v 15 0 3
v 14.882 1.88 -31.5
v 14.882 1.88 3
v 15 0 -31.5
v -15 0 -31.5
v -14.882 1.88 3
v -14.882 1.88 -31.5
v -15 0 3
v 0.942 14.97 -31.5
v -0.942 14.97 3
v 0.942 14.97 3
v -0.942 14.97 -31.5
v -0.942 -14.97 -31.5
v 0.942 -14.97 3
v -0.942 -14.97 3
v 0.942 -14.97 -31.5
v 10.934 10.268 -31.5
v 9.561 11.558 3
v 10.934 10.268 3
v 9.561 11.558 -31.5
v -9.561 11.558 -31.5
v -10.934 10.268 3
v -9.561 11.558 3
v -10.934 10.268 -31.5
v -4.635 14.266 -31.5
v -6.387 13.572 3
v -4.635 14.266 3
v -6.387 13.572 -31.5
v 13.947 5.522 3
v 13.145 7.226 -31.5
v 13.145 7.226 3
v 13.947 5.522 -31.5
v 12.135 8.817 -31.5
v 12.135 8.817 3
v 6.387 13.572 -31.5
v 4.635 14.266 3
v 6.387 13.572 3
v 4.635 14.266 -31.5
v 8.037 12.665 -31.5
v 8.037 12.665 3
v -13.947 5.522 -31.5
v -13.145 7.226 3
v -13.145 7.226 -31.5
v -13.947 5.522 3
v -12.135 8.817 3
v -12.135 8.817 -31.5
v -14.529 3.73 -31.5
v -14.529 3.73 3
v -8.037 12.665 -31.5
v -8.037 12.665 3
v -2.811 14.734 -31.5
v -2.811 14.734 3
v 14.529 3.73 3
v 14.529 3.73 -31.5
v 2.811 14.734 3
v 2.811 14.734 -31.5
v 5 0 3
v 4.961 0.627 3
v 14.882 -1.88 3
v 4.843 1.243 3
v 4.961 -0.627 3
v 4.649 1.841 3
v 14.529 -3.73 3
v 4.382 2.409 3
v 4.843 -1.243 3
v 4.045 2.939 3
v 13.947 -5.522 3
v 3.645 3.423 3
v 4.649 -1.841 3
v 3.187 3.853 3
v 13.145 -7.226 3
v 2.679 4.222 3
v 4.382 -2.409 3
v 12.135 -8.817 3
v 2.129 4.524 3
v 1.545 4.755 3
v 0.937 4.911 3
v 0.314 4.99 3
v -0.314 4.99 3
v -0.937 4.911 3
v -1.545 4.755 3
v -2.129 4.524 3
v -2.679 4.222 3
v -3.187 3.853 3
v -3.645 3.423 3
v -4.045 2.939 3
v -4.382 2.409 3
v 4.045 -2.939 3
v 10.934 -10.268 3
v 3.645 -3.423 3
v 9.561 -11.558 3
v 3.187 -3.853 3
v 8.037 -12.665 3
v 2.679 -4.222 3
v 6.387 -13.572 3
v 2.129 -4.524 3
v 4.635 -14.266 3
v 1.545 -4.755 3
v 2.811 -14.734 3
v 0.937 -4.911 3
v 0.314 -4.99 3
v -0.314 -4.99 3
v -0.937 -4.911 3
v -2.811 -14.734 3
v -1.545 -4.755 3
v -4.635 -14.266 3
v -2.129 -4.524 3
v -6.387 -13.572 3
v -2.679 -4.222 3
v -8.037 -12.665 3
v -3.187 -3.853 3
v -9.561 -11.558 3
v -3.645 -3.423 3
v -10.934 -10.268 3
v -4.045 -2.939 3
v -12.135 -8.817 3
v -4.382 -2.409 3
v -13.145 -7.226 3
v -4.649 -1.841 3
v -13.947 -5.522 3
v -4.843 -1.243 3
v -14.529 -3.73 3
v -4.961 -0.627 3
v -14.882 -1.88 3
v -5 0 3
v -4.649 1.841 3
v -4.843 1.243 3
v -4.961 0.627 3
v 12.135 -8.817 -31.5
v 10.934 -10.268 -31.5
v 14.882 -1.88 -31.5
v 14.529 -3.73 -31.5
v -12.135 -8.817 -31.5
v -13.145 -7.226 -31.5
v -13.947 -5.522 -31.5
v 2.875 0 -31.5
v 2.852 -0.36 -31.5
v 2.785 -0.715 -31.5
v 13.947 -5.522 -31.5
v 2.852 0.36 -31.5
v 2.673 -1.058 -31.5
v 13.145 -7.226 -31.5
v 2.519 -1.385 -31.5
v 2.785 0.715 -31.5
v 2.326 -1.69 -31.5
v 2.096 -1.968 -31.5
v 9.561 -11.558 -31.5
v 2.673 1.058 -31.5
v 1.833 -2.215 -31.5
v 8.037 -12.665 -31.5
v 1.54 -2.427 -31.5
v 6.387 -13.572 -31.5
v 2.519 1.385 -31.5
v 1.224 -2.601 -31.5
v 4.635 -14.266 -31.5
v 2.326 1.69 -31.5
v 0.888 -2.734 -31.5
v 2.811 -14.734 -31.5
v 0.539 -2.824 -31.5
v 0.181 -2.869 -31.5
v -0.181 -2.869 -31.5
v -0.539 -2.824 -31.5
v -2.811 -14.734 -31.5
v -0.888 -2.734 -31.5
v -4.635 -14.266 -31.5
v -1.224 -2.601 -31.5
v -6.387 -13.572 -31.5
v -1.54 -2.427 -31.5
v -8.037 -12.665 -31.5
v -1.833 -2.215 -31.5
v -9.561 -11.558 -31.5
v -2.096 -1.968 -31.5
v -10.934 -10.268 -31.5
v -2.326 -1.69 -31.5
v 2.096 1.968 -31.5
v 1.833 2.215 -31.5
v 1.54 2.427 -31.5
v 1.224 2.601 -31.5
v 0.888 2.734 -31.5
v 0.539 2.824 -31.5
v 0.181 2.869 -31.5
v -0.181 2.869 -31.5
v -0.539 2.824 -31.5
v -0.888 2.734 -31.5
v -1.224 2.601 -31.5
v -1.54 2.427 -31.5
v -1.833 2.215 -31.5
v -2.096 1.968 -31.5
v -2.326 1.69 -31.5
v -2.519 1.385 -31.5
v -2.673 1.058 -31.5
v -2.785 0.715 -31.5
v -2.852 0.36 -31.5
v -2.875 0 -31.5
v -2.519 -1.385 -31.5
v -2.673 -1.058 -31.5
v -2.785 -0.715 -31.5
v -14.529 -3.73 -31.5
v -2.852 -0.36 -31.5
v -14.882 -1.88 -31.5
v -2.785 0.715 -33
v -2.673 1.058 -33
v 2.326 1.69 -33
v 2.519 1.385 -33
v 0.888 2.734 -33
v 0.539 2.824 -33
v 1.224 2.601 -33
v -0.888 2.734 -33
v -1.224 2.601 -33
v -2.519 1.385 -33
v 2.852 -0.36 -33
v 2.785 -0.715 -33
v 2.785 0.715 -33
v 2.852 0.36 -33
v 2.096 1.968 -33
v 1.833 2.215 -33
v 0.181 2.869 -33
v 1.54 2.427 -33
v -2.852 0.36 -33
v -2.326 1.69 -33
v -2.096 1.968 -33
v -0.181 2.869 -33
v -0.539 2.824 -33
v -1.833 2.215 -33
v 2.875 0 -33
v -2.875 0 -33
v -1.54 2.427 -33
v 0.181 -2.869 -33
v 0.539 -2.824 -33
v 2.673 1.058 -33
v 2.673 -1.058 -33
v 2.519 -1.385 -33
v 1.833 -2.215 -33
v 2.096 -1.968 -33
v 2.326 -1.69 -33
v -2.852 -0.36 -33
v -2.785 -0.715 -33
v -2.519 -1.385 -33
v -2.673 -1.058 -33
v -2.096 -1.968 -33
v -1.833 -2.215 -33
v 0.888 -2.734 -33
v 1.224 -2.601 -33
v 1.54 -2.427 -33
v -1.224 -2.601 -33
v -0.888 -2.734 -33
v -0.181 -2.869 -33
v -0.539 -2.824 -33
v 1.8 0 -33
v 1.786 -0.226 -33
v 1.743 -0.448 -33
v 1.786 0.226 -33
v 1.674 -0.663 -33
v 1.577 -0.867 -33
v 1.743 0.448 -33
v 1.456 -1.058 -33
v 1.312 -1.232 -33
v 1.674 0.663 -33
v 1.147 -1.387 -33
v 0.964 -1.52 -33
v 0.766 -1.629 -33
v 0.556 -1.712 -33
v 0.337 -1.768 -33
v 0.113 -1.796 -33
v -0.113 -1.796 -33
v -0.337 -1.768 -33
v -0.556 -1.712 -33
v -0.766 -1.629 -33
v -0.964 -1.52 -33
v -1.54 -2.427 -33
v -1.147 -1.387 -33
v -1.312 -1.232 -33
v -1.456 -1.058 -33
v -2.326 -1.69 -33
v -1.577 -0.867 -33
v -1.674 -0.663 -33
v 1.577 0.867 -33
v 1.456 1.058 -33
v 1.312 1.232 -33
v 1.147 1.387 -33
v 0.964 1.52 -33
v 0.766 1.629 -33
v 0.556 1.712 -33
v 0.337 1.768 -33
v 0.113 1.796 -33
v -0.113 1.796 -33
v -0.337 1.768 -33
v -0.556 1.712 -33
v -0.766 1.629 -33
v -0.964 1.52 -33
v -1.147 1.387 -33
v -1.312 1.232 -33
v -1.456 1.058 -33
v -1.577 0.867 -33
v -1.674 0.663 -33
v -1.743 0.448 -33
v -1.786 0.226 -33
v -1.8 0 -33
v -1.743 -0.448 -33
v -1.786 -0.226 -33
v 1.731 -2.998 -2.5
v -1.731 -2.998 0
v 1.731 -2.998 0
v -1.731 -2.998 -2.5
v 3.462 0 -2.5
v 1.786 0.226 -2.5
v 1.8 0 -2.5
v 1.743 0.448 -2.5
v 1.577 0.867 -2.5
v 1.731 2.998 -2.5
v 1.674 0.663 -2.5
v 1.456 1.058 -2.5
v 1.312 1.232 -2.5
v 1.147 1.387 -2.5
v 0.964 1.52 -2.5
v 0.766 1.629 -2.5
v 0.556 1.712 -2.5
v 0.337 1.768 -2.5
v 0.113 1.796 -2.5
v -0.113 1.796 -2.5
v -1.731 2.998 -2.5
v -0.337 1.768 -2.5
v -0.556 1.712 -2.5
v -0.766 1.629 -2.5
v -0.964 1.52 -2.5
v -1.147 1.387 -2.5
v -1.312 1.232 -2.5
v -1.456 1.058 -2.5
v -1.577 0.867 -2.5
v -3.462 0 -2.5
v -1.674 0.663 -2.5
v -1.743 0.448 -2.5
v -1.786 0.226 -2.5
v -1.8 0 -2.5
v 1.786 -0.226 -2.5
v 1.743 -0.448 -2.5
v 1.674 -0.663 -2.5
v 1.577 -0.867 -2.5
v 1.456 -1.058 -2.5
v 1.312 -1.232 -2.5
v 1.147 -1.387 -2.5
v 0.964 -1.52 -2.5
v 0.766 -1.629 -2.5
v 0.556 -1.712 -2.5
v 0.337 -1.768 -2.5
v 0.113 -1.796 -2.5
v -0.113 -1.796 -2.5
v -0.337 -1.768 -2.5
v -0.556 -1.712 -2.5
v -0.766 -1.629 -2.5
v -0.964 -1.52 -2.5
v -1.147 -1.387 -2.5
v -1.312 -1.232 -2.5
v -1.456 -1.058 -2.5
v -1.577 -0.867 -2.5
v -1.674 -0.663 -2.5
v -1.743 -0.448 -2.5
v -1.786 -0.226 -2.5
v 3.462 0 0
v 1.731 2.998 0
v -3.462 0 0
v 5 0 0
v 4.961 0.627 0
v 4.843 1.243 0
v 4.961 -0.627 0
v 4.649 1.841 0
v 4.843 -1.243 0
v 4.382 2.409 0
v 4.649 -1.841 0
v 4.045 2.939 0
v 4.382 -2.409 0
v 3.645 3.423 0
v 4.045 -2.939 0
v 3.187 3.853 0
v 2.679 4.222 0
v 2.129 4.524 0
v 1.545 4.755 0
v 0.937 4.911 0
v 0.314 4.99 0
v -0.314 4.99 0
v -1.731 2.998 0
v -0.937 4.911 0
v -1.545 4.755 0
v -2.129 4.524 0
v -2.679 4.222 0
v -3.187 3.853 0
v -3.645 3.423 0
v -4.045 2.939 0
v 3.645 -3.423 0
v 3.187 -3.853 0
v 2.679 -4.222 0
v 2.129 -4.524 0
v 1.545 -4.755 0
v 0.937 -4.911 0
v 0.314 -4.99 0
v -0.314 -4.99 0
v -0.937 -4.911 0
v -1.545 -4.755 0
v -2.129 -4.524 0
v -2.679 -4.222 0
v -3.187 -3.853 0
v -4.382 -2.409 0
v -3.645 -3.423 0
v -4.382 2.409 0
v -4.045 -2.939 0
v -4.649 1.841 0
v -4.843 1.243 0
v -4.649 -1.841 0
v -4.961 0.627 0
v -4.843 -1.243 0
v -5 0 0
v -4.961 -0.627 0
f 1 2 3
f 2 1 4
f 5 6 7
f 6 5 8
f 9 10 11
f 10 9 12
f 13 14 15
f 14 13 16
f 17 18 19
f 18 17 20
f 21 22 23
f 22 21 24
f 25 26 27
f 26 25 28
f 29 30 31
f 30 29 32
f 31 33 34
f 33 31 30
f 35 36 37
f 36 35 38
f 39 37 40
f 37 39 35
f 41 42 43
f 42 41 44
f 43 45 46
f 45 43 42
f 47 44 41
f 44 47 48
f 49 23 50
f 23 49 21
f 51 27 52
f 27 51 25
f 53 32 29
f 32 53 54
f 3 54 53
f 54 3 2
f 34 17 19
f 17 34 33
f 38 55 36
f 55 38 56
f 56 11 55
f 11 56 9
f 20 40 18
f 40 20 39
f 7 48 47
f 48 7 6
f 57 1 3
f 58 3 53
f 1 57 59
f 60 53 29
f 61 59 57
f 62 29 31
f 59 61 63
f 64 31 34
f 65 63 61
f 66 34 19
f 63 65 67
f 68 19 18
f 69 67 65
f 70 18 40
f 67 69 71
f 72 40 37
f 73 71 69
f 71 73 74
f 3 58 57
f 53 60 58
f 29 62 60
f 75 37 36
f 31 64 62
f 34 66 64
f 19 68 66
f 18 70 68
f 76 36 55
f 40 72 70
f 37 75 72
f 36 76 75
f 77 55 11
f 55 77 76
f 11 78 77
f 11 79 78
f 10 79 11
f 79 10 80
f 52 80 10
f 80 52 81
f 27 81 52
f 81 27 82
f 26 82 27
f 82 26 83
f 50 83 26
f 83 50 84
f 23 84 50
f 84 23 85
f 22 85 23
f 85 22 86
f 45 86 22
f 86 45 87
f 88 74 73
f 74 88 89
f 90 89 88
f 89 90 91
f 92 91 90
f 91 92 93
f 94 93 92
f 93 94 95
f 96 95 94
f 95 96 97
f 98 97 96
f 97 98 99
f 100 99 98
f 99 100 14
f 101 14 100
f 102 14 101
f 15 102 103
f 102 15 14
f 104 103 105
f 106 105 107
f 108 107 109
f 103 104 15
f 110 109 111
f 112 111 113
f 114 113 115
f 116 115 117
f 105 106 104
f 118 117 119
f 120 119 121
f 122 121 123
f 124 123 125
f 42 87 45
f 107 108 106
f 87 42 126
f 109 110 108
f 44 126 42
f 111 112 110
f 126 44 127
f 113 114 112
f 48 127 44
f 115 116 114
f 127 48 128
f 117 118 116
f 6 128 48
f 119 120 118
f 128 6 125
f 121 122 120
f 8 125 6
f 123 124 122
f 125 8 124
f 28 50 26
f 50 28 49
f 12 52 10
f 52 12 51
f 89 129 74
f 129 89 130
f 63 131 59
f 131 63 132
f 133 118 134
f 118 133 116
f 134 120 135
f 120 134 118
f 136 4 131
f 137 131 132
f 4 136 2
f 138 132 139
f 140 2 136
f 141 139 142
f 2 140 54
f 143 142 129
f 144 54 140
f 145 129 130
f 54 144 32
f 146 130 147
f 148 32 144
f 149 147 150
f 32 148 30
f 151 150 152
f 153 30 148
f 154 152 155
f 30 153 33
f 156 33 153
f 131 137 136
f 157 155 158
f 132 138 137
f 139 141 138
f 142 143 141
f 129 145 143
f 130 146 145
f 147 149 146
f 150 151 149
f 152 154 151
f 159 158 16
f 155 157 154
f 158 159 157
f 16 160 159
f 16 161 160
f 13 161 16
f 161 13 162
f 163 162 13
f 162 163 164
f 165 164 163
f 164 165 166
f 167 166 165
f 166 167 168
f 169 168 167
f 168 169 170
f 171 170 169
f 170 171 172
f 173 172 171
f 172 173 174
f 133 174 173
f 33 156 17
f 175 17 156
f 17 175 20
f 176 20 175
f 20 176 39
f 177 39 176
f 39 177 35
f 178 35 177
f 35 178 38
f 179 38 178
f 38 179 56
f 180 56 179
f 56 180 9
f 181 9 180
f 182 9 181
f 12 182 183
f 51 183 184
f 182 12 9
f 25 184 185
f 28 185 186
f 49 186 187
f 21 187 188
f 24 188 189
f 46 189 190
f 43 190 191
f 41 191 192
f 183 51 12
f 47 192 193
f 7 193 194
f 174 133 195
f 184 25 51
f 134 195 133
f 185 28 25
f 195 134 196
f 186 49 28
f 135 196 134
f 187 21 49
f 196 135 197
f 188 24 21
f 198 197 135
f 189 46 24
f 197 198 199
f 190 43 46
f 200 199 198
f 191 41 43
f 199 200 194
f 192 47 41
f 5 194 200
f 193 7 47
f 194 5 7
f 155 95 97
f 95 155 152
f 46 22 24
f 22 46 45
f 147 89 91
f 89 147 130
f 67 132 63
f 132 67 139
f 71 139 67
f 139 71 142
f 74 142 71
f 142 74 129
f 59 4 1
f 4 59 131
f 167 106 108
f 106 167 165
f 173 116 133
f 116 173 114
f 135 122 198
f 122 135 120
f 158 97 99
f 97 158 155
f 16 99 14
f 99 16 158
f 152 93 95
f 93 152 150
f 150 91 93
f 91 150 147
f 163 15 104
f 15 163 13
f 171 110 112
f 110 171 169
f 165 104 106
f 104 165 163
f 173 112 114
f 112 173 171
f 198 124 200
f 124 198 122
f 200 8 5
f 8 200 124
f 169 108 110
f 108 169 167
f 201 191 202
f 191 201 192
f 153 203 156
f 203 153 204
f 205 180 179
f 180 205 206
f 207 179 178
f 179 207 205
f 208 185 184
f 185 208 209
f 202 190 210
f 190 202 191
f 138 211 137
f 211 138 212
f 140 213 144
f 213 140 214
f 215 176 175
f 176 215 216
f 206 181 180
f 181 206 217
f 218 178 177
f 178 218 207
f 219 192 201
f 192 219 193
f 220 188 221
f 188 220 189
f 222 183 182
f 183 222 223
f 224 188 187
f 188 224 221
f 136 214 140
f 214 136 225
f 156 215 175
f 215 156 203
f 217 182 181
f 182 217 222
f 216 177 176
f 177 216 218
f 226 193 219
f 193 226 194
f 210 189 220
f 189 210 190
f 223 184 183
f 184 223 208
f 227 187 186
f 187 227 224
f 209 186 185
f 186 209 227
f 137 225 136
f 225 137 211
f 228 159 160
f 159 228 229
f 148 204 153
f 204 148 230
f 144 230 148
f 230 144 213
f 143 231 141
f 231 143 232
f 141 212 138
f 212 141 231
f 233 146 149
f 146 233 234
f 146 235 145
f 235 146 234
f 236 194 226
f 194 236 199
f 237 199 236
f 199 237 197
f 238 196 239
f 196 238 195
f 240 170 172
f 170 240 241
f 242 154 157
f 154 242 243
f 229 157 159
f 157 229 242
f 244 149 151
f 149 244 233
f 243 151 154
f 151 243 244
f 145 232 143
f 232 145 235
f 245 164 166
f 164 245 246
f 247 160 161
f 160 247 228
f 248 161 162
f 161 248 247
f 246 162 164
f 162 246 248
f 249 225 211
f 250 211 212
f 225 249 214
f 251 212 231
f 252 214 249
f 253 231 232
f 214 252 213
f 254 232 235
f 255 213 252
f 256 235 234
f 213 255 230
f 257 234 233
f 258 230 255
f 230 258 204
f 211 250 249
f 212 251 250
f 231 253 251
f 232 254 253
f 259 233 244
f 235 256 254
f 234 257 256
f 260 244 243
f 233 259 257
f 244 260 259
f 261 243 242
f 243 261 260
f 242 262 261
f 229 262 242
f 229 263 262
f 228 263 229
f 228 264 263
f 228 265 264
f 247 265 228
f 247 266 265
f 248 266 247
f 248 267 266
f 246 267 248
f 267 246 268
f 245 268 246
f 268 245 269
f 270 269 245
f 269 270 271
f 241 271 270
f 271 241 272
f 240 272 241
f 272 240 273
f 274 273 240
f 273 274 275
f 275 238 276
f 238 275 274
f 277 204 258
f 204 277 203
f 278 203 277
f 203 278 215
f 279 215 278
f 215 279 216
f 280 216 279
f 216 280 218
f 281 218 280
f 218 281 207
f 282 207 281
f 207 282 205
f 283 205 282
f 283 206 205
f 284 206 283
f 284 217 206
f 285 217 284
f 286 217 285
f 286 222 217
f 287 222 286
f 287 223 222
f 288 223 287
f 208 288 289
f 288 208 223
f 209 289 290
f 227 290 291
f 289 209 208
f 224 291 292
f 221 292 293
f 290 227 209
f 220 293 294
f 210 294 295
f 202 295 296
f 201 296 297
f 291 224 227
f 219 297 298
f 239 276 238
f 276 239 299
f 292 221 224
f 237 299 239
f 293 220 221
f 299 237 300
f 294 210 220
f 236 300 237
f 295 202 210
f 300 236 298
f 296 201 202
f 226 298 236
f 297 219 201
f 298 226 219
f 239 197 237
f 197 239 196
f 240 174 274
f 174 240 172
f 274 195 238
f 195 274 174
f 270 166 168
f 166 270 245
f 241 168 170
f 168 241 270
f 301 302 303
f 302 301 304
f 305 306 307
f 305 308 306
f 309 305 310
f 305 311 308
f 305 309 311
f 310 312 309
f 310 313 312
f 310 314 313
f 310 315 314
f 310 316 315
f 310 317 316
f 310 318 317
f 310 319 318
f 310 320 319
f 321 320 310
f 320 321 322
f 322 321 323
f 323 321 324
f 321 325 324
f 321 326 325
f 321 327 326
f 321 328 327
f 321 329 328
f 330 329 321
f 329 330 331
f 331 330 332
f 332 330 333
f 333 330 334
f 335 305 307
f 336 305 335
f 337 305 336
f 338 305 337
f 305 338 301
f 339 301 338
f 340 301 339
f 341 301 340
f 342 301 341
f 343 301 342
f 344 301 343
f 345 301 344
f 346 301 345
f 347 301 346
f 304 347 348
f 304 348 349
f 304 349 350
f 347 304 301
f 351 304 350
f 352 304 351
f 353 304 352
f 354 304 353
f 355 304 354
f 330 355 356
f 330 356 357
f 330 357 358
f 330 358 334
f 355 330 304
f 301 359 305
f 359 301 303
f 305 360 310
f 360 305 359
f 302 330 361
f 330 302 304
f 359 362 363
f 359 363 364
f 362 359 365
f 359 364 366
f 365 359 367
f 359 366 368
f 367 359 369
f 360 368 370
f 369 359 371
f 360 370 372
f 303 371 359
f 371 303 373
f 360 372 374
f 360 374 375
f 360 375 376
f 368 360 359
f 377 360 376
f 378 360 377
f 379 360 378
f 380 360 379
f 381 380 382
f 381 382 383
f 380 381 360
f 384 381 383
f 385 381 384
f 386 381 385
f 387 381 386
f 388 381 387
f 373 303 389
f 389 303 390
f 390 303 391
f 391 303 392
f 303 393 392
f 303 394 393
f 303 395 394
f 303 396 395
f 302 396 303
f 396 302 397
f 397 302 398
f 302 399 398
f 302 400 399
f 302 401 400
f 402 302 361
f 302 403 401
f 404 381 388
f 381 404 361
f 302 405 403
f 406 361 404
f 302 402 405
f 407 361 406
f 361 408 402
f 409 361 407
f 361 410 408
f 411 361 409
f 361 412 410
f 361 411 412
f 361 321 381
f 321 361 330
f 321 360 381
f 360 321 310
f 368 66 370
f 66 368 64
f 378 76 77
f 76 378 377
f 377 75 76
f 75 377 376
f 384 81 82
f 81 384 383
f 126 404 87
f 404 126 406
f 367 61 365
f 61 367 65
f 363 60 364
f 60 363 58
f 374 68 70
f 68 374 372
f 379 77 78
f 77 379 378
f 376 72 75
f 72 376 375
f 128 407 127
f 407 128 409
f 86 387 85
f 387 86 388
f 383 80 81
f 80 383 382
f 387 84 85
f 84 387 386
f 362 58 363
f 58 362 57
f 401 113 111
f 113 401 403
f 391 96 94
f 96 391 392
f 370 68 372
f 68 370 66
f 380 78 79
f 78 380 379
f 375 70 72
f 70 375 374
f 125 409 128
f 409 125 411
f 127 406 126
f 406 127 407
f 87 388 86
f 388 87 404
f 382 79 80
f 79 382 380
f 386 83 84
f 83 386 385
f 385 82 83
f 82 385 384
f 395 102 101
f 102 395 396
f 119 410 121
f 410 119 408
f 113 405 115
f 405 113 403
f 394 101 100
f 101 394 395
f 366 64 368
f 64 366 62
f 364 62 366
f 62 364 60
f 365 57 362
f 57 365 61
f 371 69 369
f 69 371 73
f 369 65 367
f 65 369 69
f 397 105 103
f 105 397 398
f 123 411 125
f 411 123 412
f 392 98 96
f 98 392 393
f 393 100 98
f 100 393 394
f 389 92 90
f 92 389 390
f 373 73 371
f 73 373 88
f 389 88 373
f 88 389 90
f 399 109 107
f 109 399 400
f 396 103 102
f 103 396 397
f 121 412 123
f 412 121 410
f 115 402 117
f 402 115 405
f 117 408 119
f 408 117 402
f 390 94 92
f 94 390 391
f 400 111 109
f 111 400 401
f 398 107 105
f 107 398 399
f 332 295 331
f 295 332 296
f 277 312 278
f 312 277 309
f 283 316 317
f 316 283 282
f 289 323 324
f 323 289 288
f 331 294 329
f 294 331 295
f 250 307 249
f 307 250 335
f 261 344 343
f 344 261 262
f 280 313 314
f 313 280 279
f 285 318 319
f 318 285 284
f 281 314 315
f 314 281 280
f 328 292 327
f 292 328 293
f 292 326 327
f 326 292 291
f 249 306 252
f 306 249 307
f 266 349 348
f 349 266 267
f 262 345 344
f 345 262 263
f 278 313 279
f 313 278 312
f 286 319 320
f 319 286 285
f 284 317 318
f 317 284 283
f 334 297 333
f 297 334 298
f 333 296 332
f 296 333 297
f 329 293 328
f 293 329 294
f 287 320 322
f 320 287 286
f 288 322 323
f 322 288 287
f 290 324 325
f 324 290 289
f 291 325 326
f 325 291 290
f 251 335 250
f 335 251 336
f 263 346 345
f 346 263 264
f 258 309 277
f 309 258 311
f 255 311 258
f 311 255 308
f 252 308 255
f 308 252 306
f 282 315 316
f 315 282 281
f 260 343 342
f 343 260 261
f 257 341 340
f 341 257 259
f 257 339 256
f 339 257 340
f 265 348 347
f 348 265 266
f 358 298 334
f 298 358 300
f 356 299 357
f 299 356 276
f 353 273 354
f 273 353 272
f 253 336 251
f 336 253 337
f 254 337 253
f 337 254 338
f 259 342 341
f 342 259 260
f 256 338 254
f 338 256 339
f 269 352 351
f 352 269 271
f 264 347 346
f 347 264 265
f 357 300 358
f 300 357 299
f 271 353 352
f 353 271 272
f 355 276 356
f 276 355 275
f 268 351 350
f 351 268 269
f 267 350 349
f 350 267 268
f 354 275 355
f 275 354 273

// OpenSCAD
$fn = 50;

difference() {
	union() {
		translate(v = [0, 0, -31.5]) {
			cylinder(h = 34.5, r = 15.0);
		}
		#translate(v = [0, 0, -33.0]) {
			cylinder(h = 33, r = 2.875);
		}
	}
	union() {
		translate(v = [0, 0, 0]) {
			rotate(a = [0, 0, 0]) {
				difference() {
					union() {
						translate(v = [0, 0, -2.5]) {
							linear_extrude(height = 2.5) {
								polygon(points = [[3.4619999999999997, 0.0], [1.7310000000000003, 2.9981799479017264], [-1.7309999999999992, 2.9981799479017264], [-3.4619999999999997, 4.2397272186481365e-16], [-1.7310000000000014, -2.998179947901726], [1.7309999999999977, -2.9981799479017277]]);
							}
						}
					}
					union();
				}
			}
		}
		#cylinder(h = 3, r = 5.0);
		#translate(v = [0, 0, -100.0]) {
			cylinder(h = 200, r = 1.8);
		}
	}
}
